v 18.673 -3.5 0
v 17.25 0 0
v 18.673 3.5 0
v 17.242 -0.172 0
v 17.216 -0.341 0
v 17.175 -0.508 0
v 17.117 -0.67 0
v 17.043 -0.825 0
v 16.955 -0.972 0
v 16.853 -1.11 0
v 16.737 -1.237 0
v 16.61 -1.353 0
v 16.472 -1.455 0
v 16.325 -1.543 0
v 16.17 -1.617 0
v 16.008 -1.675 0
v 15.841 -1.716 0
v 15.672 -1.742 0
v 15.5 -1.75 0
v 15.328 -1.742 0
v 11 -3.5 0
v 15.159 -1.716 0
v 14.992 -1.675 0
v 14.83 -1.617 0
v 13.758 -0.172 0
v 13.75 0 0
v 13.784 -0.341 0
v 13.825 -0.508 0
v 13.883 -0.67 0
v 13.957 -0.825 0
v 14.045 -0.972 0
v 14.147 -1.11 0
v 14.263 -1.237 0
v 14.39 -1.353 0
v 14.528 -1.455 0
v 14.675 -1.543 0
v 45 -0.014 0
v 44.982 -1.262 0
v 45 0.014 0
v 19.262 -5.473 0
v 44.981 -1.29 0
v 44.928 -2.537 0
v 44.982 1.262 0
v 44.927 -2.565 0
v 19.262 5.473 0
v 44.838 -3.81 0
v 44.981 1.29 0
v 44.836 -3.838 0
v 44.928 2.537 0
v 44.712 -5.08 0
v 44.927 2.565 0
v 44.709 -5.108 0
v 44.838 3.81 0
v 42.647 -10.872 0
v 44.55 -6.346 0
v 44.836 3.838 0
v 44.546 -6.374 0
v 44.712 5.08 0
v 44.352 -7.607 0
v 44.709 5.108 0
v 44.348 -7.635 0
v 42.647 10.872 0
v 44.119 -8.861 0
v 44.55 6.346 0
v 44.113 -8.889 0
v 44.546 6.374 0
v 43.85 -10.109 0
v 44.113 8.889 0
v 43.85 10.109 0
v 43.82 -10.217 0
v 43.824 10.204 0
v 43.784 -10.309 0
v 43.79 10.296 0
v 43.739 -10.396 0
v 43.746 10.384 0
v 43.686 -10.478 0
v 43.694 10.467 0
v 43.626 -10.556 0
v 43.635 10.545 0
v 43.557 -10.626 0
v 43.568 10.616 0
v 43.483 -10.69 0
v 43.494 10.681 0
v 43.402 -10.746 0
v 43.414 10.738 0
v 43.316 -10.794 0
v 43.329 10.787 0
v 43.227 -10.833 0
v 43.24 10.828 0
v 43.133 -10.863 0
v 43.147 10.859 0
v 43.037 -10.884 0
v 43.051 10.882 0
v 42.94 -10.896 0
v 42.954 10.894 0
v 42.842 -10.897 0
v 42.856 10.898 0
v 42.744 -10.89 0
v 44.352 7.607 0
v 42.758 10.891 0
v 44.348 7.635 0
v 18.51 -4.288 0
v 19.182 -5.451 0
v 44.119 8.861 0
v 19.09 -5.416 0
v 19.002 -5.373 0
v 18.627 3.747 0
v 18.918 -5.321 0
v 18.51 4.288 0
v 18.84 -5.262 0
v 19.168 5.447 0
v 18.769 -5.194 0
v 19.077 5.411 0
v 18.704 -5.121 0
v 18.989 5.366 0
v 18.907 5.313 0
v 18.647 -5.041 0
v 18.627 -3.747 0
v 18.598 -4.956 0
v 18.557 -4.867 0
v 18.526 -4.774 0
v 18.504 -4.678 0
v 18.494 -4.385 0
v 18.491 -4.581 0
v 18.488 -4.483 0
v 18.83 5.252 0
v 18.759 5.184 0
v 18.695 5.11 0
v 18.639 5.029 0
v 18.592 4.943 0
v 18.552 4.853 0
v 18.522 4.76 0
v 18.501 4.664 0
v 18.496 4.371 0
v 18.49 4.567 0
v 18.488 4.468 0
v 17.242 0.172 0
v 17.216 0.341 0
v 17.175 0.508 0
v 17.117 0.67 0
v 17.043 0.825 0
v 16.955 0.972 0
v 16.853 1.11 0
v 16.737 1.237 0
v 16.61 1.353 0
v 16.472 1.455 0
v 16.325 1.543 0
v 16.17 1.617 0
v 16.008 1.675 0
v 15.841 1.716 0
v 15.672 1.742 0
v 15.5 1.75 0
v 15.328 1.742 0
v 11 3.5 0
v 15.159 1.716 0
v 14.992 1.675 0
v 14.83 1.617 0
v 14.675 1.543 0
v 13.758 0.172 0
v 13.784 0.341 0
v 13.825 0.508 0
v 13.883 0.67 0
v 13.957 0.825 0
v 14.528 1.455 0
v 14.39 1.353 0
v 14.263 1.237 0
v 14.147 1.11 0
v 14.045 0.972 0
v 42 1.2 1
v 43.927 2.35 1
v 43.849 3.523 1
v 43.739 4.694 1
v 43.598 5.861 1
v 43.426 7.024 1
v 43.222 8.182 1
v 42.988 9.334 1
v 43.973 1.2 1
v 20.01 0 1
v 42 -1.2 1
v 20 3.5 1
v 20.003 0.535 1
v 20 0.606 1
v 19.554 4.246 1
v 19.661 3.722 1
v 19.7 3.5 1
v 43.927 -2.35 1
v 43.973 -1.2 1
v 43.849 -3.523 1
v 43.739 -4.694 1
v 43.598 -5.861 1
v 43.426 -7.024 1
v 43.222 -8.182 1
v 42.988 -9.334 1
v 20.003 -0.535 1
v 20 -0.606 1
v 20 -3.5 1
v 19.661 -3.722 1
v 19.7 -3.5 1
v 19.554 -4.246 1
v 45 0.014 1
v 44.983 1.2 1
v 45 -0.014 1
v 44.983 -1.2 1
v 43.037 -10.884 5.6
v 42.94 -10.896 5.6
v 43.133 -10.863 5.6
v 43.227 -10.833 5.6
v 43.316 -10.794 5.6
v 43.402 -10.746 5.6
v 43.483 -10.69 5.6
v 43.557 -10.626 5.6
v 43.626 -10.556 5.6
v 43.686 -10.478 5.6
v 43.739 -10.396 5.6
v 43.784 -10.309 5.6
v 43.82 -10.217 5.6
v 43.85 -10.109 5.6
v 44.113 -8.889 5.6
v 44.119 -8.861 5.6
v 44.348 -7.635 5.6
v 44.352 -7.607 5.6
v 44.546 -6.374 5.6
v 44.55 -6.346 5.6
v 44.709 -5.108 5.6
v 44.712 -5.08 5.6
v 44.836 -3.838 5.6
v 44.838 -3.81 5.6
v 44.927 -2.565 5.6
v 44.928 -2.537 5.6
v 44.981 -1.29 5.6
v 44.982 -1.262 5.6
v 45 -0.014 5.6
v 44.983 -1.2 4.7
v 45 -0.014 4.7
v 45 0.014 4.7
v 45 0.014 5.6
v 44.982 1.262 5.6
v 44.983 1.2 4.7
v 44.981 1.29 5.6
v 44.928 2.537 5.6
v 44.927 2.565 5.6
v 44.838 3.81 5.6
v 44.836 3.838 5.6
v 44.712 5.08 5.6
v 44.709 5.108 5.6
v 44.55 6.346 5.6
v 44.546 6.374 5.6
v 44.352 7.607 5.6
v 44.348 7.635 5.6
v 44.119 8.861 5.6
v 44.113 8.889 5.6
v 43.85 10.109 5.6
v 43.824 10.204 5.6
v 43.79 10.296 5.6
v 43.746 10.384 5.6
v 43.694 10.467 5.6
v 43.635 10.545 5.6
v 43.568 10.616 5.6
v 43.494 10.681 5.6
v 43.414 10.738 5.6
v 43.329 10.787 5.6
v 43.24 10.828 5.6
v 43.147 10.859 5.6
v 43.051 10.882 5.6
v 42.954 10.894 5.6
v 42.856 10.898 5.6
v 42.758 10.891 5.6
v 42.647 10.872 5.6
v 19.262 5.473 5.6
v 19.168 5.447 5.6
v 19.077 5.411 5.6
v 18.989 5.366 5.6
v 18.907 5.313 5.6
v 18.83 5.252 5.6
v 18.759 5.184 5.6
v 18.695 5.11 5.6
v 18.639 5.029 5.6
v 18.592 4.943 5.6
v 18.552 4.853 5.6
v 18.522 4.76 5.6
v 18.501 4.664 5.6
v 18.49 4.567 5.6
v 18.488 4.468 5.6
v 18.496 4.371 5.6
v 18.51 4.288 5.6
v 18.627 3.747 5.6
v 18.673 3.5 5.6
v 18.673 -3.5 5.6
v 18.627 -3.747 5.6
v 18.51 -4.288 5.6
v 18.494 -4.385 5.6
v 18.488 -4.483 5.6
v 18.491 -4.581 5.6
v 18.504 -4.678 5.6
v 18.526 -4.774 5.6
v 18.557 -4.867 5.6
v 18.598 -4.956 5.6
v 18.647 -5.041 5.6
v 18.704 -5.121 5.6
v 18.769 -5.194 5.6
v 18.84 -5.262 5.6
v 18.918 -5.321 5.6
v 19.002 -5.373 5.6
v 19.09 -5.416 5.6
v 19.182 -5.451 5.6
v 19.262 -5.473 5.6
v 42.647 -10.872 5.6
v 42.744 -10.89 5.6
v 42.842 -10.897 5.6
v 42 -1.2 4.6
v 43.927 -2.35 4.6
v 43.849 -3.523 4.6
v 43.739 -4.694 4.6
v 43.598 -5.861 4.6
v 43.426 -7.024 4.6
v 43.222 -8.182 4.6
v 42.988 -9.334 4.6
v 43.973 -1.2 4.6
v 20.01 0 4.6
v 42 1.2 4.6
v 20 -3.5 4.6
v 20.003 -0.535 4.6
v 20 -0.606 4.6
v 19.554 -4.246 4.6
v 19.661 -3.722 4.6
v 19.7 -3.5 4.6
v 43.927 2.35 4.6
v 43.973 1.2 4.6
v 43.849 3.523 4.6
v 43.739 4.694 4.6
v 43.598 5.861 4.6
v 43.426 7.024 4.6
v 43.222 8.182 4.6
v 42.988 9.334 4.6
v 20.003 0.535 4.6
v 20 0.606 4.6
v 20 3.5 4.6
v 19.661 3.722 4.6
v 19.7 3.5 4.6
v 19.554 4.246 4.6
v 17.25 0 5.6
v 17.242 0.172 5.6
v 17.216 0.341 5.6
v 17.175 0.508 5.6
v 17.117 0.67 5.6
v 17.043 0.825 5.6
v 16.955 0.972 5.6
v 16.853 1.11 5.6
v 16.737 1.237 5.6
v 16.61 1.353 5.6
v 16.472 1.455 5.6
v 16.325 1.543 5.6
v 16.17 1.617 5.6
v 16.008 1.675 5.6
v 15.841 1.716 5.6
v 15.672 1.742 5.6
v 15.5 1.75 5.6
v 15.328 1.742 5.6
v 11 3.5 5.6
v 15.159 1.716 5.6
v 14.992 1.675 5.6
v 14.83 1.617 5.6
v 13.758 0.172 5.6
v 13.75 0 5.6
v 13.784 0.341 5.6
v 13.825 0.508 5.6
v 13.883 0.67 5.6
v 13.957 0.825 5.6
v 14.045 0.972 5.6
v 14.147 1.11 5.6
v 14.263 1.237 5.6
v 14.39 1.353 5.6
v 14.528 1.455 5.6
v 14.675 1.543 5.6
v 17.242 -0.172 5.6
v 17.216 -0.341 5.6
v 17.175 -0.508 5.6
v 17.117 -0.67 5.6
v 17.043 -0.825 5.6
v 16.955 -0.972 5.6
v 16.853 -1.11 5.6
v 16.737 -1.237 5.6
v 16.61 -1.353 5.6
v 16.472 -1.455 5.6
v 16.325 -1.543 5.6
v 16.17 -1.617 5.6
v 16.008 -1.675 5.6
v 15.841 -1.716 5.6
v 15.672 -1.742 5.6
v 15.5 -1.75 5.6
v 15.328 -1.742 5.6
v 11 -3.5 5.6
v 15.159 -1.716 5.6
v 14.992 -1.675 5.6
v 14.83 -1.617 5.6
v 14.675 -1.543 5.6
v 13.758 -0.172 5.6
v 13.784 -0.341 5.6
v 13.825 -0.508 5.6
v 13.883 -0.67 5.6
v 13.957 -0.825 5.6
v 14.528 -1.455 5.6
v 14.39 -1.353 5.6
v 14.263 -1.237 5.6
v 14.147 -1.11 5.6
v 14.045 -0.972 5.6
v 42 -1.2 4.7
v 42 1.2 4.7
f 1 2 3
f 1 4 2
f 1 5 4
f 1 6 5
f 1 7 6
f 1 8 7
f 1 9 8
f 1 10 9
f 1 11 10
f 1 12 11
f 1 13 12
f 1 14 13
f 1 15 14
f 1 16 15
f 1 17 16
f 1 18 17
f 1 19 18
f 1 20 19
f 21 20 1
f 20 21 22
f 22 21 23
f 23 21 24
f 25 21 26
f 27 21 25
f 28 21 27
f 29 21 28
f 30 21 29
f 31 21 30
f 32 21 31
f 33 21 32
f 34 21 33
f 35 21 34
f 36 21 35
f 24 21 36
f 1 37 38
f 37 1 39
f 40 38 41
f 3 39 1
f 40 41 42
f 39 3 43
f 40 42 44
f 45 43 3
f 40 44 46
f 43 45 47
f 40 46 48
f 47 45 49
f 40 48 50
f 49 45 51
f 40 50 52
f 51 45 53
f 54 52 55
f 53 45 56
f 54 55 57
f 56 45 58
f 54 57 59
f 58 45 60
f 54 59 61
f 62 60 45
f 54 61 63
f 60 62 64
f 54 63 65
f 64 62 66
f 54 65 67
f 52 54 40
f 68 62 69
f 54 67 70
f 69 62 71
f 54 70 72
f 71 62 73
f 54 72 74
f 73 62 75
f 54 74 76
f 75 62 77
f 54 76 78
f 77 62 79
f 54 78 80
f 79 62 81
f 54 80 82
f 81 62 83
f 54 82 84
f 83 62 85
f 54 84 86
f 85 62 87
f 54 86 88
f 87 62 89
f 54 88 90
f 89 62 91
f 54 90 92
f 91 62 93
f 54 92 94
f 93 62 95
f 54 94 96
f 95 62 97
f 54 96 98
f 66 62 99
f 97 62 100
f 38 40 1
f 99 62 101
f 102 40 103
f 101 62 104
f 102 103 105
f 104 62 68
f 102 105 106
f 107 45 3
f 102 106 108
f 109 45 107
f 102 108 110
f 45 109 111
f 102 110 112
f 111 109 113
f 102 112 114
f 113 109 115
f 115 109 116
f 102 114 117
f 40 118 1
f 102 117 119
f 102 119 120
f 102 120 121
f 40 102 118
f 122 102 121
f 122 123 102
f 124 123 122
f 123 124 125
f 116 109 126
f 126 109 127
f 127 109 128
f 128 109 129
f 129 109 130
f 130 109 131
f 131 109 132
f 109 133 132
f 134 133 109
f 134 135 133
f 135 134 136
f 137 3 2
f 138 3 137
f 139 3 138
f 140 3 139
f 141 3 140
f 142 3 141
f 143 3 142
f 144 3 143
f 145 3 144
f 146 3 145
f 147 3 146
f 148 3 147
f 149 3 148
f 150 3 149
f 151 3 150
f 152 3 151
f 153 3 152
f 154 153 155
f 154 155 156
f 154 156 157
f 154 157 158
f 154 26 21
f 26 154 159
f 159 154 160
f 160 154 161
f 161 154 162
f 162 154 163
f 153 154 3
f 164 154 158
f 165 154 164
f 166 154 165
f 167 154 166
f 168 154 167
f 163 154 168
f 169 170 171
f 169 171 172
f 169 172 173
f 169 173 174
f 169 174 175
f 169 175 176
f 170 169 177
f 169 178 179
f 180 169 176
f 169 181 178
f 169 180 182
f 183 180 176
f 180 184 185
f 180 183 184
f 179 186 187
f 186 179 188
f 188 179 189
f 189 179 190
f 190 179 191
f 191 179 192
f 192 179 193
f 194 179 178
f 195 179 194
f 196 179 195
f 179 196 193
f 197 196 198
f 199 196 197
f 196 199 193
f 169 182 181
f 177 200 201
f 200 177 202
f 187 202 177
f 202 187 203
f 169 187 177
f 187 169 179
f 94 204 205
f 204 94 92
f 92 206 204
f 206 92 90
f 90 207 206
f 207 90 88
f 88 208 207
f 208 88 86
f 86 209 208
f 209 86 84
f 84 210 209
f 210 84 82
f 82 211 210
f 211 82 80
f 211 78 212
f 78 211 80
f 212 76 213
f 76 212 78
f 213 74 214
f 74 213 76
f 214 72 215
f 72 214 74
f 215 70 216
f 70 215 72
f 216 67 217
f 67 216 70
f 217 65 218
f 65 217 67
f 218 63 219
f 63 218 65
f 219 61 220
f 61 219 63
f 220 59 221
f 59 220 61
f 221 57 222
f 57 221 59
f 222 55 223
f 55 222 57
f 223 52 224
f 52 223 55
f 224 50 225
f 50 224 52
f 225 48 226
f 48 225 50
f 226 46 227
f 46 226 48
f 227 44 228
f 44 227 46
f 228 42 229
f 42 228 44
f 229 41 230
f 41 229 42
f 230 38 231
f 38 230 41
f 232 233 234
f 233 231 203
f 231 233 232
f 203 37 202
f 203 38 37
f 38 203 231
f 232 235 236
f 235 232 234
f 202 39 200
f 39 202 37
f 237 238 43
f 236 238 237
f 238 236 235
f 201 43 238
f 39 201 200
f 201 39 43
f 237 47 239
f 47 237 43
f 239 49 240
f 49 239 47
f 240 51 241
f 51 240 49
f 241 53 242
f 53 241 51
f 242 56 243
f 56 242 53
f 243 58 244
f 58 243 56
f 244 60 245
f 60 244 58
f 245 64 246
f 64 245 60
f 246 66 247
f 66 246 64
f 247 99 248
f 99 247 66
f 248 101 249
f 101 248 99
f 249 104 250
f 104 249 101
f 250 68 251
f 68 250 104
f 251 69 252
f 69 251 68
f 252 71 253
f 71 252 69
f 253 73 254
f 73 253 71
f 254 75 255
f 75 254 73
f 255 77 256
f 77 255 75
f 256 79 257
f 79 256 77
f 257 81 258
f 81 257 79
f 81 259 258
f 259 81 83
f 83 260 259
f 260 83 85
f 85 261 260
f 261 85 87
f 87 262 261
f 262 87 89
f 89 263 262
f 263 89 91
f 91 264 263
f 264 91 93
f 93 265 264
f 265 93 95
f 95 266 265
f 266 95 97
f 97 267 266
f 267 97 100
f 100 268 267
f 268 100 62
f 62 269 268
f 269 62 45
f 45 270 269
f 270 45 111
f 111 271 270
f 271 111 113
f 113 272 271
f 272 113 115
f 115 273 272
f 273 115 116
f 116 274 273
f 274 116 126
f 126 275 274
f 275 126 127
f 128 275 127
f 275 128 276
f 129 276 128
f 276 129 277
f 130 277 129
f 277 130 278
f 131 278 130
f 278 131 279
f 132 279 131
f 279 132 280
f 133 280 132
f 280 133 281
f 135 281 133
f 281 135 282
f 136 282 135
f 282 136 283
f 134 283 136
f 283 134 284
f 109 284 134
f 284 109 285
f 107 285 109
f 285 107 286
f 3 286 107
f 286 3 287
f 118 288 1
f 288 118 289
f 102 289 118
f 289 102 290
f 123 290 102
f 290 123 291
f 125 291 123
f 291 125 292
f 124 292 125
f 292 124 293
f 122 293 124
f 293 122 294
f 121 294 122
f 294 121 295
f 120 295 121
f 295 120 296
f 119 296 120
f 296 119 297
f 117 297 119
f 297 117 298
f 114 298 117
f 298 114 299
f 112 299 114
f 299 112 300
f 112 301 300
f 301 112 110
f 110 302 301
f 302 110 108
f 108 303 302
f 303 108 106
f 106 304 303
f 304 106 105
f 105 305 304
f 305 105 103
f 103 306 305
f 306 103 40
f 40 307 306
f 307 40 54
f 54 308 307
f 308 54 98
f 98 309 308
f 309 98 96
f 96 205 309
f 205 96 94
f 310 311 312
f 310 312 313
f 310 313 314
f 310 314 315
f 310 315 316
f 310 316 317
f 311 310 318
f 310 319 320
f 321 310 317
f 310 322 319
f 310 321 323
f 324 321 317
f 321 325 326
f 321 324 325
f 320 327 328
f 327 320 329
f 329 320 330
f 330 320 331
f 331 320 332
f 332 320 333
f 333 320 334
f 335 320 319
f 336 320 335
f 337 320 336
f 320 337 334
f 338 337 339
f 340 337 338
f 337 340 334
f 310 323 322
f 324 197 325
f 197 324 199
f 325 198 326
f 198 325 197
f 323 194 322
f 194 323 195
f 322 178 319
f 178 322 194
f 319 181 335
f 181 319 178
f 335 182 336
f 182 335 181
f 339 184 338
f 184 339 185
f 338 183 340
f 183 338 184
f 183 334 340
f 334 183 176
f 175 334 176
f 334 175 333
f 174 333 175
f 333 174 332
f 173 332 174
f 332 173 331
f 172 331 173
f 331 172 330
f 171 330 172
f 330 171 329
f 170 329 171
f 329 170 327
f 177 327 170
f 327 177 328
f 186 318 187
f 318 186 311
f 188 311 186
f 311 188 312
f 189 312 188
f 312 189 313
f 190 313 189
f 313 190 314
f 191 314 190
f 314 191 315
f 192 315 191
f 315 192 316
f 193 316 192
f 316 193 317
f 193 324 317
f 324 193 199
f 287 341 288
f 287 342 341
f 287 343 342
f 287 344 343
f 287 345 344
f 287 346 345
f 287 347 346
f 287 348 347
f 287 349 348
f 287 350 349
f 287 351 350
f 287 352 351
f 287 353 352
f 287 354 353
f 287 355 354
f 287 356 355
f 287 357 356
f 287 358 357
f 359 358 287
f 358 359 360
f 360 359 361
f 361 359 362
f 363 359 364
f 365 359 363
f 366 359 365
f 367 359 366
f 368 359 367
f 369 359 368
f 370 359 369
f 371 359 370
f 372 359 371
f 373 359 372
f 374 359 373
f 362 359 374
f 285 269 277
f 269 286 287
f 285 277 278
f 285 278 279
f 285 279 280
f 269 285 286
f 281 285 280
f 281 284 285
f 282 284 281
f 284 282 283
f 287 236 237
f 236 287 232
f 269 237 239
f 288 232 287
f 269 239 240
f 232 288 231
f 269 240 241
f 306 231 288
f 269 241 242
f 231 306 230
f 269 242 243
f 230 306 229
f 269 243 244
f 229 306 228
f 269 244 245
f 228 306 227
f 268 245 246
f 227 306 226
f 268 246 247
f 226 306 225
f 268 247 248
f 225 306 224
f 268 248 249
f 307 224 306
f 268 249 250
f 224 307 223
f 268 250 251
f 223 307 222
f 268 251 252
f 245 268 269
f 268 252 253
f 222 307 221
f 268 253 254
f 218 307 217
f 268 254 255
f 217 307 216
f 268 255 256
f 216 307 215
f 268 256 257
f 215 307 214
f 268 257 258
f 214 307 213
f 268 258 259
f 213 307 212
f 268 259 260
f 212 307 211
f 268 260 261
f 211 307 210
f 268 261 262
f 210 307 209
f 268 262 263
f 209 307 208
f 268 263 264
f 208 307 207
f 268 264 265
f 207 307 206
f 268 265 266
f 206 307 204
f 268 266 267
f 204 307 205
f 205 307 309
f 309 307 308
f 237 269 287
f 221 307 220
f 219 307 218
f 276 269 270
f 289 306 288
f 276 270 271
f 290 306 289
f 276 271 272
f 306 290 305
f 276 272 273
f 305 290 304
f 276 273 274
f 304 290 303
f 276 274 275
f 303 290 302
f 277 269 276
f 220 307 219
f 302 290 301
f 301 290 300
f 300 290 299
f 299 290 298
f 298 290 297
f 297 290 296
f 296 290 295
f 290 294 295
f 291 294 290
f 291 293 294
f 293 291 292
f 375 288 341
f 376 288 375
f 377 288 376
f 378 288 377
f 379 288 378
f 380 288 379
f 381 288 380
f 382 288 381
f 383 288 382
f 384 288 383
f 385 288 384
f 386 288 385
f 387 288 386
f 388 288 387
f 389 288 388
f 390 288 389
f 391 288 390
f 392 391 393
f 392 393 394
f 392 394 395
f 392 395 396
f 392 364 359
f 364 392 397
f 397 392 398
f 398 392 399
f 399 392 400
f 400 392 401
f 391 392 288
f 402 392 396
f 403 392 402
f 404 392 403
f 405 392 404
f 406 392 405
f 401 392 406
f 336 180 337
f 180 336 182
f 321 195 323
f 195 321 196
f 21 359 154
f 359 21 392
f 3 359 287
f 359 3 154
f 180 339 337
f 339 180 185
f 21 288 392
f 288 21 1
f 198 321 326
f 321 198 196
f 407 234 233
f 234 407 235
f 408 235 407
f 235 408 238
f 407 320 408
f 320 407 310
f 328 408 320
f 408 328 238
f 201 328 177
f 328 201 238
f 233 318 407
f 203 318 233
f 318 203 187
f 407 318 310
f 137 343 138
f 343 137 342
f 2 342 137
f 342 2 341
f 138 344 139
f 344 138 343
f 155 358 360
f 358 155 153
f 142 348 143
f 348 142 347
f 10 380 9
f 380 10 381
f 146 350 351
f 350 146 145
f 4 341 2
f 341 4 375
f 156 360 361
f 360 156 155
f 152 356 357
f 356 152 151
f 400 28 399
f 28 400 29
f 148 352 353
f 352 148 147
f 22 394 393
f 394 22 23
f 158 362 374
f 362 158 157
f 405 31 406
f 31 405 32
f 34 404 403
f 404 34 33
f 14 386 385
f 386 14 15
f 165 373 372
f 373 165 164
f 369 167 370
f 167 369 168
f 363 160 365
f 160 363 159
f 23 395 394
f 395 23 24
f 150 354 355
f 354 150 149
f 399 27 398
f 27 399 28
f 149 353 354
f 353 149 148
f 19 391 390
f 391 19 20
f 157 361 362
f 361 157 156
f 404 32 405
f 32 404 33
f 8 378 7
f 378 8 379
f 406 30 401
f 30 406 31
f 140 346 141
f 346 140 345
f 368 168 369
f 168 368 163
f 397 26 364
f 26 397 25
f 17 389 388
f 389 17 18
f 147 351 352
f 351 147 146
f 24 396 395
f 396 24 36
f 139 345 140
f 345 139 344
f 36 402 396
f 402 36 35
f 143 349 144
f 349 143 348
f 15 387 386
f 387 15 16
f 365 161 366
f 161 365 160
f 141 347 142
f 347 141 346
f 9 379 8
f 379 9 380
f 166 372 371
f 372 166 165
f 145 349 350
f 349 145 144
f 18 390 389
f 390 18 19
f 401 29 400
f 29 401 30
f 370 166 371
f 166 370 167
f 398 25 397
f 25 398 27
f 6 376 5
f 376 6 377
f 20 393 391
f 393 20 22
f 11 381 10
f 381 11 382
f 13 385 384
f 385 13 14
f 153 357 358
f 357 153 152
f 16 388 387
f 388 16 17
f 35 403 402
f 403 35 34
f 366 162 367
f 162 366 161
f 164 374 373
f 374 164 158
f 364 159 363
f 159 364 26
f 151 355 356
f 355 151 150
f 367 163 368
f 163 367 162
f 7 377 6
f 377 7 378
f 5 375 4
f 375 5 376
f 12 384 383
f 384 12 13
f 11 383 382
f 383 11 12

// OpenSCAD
// Gen-B pancake coil former — print ×12
// Narrower span for 12-coil 3φ; 30 AWG ~250 t OR 26 AWG ~120 t

/* ===== named parameters ===== */
coil_id_r       = 20.0;
coil_od_r       = 44.0;
span_deg        = 26.0;   // < 30° station
flange_t        = 1.0;
core_t          = 3.6;
wall            = 1.0;
slot_w          = 2.4;
mount_hole      = 3.5;
tab_len         = 7.0;
$fn = 64;

module sector_2d(r_in, r_out, ang) {
    polygon([
        for (a = [-ang/2 : ang/16 : ang/2]) [r_in*cos(a), r_in*sin(a)],
        for (a = [ang/2 : -ang/16 : -ang/2]) [r_out*cos(a), r_out*sin(a)]
    ]);
}

module flange() {
    linear_extrude(flange_t)
        offset(r=wall) sector_2d(coil_id_r, coil_od_r, span_deg);
}

difference() {
    union() {
        flange();
        translate([0, 0, flange_t])
            linear_extrude(core_t)
                difference() {
                    offset(r=wall) sector_2d(coil_id_r, coil_od_r, span_deg);
                    sector_2d(coil_id_r + 0.01, coil_od_r - 0.01, span_deg - 1.5);
                }
        translate([0, 0, flange_t + core_t]) flange();
        translate([coil_id_r - tab_len - 2, -3.5, 0])
            cube([tab_len + 2, 7, flange_t*2 + core_t]);
    }
    translate([coil_od_r - 2, -slot_w/2, flange_t])
        cube([wall + 4, slot_w, core_t + 0.1]);
    translate([coil_id_r - tab_len/2 - 1, 0, -0.1])
        cylinder(d=mount_hole, h=flange_t*2 + core_t + 1);
}
